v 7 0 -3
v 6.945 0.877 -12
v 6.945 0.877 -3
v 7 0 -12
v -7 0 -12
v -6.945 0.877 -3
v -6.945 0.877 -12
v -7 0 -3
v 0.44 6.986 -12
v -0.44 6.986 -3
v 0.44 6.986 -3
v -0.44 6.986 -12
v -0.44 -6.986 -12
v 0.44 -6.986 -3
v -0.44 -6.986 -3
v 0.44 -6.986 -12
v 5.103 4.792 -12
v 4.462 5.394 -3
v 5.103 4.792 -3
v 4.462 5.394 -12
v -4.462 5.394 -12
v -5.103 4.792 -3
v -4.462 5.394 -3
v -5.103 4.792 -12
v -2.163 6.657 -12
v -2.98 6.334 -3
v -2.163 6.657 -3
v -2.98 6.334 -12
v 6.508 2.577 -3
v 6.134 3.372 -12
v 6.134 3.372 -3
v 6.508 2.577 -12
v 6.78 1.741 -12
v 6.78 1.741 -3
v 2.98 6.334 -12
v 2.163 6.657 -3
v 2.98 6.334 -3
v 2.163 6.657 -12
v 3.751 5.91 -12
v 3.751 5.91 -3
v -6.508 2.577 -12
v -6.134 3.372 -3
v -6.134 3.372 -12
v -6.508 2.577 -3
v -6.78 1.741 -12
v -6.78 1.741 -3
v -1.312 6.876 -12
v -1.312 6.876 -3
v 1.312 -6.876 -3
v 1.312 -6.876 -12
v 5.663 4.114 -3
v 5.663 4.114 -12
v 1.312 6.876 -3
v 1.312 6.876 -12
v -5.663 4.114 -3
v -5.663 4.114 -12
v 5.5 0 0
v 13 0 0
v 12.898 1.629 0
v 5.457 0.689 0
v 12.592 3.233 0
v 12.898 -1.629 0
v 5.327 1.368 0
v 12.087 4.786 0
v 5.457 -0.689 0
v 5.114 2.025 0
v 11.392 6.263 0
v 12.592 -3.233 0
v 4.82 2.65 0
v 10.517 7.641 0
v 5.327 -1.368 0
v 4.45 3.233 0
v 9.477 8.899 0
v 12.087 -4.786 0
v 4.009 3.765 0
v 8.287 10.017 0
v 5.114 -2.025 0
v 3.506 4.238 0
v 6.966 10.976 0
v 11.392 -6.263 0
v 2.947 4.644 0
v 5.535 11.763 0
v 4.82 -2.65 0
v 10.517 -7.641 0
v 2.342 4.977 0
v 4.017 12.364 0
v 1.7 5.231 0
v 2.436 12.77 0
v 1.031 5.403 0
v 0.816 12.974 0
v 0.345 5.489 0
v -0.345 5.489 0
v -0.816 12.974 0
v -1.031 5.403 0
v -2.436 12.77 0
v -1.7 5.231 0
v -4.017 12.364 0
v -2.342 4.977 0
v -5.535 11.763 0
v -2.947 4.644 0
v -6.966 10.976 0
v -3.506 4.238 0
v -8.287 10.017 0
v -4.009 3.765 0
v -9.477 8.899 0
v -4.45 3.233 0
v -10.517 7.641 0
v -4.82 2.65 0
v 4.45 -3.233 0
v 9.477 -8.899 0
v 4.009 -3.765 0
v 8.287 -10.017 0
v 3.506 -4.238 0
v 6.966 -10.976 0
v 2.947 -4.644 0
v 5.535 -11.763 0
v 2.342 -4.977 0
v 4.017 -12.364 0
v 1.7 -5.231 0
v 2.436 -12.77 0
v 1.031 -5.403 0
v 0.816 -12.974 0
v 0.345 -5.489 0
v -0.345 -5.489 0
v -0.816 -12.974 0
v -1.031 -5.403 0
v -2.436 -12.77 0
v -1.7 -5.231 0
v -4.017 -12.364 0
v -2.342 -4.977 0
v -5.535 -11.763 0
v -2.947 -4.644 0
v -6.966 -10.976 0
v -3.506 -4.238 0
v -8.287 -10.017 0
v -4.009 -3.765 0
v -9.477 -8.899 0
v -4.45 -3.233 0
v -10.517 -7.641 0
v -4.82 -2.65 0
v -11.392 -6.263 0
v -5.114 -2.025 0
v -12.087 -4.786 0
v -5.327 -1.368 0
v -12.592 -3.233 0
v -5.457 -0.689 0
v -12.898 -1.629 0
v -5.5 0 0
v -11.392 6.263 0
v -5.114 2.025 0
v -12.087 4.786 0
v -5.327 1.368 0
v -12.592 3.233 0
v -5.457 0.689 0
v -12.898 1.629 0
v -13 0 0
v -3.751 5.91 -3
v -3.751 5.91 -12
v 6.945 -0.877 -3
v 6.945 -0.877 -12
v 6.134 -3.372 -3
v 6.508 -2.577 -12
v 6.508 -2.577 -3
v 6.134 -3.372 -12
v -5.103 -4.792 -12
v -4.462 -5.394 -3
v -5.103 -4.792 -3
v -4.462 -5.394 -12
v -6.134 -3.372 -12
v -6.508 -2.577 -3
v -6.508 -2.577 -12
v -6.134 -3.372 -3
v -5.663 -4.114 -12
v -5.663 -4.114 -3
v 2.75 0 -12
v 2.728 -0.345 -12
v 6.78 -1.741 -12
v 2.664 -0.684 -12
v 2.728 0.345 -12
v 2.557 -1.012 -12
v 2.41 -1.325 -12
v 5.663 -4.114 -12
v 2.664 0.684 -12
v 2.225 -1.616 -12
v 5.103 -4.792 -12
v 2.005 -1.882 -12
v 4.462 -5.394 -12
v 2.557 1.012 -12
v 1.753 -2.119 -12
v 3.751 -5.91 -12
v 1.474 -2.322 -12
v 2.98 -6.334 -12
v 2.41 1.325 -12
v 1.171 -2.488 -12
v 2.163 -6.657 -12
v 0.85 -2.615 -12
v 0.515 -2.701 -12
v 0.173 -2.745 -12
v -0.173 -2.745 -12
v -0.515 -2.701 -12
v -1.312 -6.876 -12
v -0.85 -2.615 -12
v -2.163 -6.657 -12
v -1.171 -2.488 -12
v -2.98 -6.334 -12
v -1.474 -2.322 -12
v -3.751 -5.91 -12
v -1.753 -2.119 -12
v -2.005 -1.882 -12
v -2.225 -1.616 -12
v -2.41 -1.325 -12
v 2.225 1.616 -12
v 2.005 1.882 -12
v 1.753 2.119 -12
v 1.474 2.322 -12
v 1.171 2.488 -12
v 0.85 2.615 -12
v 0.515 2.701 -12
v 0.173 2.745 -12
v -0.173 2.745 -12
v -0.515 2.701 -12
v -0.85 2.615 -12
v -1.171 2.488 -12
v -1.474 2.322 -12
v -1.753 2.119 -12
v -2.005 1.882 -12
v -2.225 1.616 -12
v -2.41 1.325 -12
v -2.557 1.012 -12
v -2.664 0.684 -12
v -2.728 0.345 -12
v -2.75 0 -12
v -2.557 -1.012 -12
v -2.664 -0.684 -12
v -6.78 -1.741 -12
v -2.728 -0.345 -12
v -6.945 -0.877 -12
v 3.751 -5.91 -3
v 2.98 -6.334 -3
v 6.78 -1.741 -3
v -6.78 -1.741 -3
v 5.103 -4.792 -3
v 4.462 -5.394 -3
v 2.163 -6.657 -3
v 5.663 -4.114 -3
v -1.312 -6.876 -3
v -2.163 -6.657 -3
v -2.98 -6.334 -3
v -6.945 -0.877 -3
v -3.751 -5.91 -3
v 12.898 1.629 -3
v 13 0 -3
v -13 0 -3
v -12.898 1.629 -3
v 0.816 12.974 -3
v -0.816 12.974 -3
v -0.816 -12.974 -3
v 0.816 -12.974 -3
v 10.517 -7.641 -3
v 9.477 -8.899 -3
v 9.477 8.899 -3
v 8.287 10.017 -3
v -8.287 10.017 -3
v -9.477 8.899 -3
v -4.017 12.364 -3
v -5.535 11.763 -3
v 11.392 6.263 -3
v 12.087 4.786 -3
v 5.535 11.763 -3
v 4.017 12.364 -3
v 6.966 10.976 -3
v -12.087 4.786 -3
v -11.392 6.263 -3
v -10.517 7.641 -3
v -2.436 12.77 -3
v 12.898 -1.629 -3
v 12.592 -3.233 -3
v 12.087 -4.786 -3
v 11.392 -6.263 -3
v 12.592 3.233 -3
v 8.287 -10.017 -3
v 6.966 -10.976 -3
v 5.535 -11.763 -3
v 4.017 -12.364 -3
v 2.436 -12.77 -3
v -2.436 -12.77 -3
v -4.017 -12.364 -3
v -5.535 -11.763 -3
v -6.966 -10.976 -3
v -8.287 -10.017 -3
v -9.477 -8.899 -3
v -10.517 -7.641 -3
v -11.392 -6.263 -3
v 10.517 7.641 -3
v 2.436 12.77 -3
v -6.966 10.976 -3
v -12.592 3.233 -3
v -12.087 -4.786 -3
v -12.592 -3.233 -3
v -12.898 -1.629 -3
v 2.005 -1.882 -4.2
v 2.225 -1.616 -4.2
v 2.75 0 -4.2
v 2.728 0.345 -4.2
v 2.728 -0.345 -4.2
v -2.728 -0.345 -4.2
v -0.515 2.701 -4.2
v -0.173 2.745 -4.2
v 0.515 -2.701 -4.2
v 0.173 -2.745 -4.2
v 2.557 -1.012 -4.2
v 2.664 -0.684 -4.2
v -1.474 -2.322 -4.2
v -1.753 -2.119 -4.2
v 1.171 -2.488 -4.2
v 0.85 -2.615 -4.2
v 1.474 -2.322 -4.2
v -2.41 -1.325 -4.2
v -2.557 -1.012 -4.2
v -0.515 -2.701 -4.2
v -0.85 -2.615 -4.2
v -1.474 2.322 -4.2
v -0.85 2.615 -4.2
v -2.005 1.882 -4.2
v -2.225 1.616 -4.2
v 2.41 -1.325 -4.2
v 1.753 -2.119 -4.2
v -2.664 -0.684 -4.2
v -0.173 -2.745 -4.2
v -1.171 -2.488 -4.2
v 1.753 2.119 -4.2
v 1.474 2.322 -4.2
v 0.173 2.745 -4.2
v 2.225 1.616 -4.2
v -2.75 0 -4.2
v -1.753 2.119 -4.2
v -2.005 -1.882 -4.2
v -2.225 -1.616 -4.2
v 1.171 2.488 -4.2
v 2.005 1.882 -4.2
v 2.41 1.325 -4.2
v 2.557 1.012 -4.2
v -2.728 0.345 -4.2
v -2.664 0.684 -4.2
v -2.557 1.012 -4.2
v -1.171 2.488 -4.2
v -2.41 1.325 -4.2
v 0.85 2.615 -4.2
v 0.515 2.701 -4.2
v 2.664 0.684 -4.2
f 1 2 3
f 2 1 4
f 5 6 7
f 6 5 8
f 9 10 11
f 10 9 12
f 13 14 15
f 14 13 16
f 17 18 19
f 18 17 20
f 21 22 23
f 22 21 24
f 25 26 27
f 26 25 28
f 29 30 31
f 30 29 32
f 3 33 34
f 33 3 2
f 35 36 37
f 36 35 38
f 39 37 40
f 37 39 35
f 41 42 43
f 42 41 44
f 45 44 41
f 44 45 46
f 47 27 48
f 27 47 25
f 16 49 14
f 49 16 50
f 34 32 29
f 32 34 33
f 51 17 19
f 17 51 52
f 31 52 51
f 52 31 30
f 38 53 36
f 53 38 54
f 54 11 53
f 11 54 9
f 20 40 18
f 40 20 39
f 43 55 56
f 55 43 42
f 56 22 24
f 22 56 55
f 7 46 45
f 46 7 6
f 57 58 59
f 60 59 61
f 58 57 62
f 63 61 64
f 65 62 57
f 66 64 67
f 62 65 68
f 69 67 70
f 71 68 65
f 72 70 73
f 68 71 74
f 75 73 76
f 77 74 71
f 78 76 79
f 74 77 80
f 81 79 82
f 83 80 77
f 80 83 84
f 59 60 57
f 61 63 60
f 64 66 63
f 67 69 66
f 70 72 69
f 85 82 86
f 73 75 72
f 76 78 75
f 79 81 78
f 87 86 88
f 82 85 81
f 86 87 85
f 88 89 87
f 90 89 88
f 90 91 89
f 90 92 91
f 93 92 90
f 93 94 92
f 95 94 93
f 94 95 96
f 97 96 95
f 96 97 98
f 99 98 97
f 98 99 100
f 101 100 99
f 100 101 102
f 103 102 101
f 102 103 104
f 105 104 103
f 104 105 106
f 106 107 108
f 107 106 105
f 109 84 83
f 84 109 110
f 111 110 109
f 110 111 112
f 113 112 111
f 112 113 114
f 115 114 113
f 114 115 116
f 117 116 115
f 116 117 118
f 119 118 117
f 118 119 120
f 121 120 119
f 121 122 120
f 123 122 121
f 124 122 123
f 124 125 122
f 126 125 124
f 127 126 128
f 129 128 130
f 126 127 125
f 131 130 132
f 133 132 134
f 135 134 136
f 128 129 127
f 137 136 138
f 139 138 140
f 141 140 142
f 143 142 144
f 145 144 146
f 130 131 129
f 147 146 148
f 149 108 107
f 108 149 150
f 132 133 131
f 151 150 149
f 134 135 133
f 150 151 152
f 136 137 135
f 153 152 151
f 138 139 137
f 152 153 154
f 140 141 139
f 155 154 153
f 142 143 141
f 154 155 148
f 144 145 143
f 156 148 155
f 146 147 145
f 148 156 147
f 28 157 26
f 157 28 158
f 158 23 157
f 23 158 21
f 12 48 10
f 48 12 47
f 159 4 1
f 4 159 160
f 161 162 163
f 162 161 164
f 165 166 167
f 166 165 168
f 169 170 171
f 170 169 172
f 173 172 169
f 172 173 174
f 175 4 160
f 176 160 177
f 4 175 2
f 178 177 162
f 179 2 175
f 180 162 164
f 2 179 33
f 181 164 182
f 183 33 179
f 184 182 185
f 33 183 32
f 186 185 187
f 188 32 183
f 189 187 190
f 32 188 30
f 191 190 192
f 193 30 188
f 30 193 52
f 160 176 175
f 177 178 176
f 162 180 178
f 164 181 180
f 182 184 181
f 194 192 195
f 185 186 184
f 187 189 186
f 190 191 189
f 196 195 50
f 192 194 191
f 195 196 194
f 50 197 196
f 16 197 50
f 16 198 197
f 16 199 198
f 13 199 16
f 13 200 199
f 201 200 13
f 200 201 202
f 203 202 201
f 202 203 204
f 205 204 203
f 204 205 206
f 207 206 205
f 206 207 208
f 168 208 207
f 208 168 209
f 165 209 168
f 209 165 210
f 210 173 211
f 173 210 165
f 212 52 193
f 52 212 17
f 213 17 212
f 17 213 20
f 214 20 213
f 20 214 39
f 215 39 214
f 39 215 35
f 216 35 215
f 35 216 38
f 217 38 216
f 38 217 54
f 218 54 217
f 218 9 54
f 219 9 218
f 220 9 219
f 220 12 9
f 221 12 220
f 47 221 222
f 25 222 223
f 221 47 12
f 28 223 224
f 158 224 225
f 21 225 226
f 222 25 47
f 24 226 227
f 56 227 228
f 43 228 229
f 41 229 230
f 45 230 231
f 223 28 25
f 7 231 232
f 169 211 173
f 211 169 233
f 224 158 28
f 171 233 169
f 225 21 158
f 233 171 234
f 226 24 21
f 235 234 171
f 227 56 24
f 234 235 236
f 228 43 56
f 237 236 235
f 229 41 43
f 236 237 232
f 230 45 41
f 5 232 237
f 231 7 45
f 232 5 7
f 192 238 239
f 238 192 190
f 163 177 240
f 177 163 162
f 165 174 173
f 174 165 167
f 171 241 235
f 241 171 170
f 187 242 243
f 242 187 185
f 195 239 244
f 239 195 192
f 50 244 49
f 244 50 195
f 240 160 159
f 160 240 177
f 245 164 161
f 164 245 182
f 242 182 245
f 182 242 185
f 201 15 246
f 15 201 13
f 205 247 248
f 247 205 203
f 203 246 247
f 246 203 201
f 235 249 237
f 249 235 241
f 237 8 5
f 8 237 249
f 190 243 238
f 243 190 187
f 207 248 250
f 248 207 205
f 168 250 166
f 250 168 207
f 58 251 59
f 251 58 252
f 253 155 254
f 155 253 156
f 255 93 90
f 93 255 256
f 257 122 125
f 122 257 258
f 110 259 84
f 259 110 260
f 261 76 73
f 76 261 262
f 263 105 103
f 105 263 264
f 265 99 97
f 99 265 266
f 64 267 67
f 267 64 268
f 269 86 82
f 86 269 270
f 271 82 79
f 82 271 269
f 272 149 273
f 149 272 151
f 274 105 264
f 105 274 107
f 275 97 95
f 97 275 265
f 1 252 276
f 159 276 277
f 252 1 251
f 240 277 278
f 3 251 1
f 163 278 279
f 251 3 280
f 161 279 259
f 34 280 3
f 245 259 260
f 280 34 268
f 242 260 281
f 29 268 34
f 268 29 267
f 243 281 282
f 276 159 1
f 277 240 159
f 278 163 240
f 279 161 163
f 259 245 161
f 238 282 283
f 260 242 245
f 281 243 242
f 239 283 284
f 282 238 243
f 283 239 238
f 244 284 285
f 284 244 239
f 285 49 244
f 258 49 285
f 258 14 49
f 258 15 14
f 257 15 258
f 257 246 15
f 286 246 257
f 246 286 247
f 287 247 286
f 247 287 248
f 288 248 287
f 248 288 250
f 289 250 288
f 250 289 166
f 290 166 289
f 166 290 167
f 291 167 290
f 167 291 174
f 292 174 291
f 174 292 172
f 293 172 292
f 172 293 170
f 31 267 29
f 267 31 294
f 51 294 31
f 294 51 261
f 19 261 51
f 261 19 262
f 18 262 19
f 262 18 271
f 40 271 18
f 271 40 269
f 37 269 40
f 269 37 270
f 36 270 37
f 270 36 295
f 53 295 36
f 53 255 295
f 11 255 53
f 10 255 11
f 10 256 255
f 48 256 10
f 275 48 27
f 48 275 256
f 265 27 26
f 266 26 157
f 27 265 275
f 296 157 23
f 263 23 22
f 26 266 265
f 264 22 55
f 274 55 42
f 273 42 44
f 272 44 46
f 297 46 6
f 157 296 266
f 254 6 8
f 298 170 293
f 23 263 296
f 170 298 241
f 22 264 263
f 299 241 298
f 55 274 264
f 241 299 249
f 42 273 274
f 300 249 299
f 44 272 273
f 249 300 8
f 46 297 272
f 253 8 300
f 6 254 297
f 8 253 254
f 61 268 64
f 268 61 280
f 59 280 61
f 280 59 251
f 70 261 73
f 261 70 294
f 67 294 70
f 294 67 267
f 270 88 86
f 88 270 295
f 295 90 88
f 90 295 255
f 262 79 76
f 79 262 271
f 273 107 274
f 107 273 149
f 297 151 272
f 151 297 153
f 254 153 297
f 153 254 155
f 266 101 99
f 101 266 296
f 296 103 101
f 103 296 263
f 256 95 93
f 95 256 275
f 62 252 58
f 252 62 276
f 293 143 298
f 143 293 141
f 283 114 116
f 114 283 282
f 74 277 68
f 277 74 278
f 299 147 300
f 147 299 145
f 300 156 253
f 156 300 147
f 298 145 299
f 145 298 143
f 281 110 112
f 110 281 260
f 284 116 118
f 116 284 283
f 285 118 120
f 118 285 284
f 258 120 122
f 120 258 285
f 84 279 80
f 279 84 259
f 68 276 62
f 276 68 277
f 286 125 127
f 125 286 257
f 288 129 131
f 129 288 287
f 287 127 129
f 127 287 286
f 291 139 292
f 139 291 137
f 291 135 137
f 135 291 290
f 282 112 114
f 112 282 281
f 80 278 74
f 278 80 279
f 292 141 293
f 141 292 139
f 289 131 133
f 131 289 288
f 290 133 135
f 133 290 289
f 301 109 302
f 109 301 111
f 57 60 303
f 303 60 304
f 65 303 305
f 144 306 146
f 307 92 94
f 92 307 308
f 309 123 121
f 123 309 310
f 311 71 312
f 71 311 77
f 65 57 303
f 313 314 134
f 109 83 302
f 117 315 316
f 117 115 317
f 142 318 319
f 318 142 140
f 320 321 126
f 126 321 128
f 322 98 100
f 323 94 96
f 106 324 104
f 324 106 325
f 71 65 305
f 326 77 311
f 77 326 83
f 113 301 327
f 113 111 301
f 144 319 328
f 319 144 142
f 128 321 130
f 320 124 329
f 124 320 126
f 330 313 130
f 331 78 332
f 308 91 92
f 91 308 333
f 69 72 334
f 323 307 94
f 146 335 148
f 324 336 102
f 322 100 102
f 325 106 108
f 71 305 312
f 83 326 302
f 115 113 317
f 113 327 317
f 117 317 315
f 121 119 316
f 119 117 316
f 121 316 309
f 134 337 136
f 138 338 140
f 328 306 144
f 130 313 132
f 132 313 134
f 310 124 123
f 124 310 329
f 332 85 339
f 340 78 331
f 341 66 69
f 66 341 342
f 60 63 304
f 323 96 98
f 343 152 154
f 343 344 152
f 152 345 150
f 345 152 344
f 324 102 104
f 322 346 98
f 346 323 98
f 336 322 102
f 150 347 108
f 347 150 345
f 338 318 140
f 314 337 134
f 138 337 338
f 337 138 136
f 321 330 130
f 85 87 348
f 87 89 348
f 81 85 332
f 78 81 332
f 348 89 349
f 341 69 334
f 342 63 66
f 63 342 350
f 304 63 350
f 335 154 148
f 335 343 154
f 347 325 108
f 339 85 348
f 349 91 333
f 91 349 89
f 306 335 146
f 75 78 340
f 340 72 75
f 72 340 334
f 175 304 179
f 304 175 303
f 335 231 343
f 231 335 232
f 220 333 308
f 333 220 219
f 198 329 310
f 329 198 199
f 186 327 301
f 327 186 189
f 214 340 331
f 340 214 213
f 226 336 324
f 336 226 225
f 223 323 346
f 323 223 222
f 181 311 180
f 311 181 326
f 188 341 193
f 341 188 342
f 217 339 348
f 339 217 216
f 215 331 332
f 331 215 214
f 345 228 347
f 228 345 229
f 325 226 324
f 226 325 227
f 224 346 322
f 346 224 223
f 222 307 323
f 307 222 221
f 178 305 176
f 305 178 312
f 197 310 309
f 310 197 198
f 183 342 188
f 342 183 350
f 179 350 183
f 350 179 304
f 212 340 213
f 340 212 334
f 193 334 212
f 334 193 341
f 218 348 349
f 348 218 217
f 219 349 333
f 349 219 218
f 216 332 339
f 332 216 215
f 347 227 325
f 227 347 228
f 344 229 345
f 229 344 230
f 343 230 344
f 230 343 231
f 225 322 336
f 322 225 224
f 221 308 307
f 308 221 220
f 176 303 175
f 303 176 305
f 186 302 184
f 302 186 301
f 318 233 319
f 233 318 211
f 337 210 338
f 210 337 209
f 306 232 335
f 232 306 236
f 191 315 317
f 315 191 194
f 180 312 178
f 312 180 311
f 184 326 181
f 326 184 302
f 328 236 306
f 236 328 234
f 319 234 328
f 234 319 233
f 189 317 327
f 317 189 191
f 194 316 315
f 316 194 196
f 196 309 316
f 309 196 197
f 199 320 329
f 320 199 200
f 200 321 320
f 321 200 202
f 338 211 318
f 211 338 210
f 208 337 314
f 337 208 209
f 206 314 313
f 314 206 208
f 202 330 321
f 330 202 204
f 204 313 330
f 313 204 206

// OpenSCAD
$fn = 50;


difference() {
	union() {
		translate(v = [0, 0, -12.0000000000]) {
			cylinder(h = 12, r = 7.0000000000);
		}
		translate(v = [0, 0, -3.0000000000]) {
			cylinder(h = 3, r = 13.0000000000);
		}
	}
	union() {
		translate(v = [0, 0, 0]) {
			rotate(a = [0, 0, 0]) {
				difference() {
					union() {
						#translate(v = [0, 0, -12.0000000000]) {
							cylinder(h = 12, r = 2.2500000000);
						}
						#translate(v = [0, 0, -4.2000000000]) {
							cylinder(h = 4.2000000000, r1 = 2.7500000000, r2 = 5.5000000000);
						}
						#translate(v = [0, 0, -12.0000000000]) {
							cylinder(h = 12, r = 2.7500000000);
						}
						#translate(v = [0, 0, -12.0000000000]) {
							cylinder(h = 12, r = 2.2500000000);
						}
					}
					union();
				}
			}
		}
	}
}
